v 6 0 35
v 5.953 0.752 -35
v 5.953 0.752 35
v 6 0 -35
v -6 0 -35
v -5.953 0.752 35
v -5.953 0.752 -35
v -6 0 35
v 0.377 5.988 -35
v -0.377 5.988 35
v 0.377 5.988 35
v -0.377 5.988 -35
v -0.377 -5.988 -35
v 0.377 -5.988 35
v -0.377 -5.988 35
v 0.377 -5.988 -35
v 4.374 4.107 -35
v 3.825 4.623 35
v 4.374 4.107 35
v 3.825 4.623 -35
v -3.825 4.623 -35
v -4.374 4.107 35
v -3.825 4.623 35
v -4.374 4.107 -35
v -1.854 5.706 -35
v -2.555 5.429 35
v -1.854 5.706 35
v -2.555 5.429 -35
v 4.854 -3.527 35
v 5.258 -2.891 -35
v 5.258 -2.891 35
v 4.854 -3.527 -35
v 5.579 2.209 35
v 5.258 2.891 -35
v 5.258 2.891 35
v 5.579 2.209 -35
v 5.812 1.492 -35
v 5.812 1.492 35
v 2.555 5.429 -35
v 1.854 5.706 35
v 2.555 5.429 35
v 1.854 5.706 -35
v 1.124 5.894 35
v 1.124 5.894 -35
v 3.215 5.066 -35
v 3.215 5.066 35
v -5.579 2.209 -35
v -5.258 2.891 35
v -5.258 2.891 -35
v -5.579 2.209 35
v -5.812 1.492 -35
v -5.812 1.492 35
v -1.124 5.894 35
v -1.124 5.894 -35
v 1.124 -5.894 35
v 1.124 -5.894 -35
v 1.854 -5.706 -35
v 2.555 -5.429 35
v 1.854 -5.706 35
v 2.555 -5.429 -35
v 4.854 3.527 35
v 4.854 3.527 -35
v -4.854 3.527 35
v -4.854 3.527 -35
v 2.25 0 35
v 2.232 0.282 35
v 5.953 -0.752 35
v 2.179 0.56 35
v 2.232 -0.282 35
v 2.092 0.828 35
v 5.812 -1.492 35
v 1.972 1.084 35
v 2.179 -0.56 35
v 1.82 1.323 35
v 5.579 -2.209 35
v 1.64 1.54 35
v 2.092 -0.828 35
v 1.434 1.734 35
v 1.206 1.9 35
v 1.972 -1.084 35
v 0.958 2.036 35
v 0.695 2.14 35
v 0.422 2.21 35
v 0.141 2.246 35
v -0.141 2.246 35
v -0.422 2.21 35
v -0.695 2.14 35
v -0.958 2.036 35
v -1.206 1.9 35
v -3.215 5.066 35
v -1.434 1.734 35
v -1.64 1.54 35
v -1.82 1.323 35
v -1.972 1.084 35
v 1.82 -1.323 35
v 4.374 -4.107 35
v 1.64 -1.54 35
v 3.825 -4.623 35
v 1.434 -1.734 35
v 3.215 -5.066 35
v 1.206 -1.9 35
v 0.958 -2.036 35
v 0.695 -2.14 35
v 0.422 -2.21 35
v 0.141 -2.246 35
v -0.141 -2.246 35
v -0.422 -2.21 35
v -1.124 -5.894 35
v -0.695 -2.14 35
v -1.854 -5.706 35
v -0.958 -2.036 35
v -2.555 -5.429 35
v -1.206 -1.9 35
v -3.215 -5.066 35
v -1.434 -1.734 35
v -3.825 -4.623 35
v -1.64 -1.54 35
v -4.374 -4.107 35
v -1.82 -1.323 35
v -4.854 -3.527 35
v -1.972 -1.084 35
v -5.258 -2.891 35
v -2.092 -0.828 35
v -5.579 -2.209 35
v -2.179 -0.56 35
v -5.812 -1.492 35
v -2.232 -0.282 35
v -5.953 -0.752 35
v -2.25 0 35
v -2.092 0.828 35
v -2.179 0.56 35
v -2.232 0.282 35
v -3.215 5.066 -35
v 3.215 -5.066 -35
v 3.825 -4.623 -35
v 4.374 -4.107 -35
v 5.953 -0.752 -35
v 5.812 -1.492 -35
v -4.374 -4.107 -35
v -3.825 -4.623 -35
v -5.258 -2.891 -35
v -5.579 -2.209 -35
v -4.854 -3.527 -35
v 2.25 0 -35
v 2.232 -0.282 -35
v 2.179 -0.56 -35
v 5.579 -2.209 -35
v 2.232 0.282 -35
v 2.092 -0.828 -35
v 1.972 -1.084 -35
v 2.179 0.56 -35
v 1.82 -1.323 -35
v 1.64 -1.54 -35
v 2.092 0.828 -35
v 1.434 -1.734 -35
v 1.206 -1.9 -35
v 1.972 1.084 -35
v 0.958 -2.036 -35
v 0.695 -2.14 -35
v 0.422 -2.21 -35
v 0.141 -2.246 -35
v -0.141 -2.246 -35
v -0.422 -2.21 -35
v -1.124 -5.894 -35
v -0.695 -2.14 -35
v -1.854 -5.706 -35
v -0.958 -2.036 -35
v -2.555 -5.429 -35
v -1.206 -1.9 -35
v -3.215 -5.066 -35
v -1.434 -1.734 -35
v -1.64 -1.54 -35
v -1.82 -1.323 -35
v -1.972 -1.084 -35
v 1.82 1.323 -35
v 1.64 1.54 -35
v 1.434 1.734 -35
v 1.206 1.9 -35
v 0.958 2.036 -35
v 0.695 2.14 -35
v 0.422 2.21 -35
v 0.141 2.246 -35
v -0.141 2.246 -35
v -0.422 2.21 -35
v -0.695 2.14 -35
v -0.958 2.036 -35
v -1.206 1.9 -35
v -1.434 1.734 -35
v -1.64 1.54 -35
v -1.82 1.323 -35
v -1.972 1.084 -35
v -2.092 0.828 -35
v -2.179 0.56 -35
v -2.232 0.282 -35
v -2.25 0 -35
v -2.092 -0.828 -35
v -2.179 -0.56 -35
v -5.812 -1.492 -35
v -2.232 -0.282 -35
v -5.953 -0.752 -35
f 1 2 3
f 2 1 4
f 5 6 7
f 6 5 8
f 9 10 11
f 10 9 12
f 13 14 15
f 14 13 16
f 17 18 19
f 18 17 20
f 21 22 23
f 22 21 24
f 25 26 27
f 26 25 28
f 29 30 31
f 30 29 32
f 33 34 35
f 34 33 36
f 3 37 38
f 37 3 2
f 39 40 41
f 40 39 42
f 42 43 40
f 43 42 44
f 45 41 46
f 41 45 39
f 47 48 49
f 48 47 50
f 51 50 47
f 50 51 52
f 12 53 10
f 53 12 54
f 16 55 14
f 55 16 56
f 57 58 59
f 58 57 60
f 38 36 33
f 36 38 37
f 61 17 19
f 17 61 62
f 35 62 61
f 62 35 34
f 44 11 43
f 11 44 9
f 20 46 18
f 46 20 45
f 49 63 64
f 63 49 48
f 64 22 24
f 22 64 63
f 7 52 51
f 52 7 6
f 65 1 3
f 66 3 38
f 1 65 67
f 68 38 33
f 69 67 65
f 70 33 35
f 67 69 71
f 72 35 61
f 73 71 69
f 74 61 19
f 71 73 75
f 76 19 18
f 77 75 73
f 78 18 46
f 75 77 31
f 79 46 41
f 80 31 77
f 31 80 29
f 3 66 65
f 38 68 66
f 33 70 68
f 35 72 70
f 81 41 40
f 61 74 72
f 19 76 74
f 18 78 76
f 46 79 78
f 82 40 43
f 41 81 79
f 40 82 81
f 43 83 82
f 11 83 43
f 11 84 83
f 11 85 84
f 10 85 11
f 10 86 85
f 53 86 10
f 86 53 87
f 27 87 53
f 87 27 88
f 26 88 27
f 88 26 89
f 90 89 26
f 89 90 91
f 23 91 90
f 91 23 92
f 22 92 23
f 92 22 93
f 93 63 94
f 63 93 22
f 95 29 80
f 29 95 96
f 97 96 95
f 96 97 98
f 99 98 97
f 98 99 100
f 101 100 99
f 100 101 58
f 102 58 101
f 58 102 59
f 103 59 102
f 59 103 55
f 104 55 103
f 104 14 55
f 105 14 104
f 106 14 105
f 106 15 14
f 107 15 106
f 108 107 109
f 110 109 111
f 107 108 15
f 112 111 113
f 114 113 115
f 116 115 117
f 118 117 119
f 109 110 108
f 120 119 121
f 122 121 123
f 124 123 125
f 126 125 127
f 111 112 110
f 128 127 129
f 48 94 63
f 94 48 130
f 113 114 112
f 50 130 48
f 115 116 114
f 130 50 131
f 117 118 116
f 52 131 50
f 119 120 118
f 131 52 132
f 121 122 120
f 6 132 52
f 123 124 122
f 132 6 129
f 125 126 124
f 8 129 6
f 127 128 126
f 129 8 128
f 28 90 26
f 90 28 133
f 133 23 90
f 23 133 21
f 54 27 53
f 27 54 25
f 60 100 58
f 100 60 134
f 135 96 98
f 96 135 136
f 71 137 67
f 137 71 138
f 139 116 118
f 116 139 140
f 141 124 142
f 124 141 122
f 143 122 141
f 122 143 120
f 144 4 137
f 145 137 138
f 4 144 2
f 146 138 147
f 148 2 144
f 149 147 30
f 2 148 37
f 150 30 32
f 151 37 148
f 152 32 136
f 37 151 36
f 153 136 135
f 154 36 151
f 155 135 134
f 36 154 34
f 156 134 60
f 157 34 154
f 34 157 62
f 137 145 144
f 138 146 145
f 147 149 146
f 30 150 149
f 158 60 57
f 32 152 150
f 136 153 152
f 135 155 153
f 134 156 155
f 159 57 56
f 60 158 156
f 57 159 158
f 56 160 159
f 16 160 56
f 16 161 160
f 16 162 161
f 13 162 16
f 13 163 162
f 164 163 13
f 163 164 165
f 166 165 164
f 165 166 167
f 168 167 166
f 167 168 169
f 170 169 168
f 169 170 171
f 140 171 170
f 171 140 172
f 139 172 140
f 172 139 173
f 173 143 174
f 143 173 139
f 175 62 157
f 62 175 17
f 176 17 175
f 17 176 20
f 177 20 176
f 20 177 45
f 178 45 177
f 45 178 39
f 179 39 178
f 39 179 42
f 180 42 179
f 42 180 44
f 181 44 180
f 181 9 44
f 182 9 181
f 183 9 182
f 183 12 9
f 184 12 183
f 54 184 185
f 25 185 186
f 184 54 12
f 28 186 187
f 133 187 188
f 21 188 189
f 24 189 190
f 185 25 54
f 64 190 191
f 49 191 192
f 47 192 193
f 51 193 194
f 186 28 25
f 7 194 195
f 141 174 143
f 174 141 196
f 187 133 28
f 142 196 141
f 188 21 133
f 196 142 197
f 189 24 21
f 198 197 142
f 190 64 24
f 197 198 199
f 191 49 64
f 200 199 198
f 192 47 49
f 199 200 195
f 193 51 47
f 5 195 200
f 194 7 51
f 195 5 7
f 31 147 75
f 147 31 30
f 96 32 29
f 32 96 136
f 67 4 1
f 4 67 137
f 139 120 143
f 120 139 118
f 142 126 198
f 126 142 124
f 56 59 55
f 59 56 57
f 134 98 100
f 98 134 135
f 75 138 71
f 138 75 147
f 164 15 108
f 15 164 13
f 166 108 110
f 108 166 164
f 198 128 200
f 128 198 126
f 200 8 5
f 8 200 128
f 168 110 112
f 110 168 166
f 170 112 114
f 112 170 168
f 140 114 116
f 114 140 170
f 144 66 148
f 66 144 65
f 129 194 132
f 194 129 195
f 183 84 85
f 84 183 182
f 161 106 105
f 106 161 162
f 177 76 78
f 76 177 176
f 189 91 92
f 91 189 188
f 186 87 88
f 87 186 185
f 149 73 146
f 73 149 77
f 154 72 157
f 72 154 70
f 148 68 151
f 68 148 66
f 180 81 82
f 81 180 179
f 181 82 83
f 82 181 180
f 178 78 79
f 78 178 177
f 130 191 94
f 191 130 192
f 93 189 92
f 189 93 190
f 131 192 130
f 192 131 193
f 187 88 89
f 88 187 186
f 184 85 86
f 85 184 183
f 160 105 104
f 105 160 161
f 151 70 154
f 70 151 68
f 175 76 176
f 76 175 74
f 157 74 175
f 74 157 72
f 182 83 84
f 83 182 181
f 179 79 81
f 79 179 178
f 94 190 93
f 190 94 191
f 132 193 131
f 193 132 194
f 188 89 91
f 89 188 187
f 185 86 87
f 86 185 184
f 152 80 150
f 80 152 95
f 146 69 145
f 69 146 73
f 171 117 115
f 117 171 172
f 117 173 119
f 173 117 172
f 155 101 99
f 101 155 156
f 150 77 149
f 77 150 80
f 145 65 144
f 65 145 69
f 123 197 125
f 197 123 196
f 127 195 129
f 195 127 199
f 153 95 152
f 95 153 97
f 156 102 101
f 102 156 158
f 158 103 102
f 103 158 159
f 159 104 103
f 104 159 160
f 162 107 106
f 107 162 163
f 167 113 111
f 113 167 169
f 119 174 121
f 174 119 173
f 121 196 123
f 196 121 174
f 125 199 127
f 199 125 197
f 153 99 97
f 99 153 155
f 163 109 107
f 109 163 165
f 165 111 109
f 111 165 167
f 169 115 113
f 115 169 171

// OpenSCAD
$fn = 50;


difference() {
	union() {
		translate(v = [0, 0, -35.0000000000]) {
			cylinder(h = 70, r = 6.0000000000);
		}
	}
	union() {
		translate(v = [0, 0, -100.0000000000]) {
			cylinder(h = 200, r = 2.2500000000);
		}
	}
}
